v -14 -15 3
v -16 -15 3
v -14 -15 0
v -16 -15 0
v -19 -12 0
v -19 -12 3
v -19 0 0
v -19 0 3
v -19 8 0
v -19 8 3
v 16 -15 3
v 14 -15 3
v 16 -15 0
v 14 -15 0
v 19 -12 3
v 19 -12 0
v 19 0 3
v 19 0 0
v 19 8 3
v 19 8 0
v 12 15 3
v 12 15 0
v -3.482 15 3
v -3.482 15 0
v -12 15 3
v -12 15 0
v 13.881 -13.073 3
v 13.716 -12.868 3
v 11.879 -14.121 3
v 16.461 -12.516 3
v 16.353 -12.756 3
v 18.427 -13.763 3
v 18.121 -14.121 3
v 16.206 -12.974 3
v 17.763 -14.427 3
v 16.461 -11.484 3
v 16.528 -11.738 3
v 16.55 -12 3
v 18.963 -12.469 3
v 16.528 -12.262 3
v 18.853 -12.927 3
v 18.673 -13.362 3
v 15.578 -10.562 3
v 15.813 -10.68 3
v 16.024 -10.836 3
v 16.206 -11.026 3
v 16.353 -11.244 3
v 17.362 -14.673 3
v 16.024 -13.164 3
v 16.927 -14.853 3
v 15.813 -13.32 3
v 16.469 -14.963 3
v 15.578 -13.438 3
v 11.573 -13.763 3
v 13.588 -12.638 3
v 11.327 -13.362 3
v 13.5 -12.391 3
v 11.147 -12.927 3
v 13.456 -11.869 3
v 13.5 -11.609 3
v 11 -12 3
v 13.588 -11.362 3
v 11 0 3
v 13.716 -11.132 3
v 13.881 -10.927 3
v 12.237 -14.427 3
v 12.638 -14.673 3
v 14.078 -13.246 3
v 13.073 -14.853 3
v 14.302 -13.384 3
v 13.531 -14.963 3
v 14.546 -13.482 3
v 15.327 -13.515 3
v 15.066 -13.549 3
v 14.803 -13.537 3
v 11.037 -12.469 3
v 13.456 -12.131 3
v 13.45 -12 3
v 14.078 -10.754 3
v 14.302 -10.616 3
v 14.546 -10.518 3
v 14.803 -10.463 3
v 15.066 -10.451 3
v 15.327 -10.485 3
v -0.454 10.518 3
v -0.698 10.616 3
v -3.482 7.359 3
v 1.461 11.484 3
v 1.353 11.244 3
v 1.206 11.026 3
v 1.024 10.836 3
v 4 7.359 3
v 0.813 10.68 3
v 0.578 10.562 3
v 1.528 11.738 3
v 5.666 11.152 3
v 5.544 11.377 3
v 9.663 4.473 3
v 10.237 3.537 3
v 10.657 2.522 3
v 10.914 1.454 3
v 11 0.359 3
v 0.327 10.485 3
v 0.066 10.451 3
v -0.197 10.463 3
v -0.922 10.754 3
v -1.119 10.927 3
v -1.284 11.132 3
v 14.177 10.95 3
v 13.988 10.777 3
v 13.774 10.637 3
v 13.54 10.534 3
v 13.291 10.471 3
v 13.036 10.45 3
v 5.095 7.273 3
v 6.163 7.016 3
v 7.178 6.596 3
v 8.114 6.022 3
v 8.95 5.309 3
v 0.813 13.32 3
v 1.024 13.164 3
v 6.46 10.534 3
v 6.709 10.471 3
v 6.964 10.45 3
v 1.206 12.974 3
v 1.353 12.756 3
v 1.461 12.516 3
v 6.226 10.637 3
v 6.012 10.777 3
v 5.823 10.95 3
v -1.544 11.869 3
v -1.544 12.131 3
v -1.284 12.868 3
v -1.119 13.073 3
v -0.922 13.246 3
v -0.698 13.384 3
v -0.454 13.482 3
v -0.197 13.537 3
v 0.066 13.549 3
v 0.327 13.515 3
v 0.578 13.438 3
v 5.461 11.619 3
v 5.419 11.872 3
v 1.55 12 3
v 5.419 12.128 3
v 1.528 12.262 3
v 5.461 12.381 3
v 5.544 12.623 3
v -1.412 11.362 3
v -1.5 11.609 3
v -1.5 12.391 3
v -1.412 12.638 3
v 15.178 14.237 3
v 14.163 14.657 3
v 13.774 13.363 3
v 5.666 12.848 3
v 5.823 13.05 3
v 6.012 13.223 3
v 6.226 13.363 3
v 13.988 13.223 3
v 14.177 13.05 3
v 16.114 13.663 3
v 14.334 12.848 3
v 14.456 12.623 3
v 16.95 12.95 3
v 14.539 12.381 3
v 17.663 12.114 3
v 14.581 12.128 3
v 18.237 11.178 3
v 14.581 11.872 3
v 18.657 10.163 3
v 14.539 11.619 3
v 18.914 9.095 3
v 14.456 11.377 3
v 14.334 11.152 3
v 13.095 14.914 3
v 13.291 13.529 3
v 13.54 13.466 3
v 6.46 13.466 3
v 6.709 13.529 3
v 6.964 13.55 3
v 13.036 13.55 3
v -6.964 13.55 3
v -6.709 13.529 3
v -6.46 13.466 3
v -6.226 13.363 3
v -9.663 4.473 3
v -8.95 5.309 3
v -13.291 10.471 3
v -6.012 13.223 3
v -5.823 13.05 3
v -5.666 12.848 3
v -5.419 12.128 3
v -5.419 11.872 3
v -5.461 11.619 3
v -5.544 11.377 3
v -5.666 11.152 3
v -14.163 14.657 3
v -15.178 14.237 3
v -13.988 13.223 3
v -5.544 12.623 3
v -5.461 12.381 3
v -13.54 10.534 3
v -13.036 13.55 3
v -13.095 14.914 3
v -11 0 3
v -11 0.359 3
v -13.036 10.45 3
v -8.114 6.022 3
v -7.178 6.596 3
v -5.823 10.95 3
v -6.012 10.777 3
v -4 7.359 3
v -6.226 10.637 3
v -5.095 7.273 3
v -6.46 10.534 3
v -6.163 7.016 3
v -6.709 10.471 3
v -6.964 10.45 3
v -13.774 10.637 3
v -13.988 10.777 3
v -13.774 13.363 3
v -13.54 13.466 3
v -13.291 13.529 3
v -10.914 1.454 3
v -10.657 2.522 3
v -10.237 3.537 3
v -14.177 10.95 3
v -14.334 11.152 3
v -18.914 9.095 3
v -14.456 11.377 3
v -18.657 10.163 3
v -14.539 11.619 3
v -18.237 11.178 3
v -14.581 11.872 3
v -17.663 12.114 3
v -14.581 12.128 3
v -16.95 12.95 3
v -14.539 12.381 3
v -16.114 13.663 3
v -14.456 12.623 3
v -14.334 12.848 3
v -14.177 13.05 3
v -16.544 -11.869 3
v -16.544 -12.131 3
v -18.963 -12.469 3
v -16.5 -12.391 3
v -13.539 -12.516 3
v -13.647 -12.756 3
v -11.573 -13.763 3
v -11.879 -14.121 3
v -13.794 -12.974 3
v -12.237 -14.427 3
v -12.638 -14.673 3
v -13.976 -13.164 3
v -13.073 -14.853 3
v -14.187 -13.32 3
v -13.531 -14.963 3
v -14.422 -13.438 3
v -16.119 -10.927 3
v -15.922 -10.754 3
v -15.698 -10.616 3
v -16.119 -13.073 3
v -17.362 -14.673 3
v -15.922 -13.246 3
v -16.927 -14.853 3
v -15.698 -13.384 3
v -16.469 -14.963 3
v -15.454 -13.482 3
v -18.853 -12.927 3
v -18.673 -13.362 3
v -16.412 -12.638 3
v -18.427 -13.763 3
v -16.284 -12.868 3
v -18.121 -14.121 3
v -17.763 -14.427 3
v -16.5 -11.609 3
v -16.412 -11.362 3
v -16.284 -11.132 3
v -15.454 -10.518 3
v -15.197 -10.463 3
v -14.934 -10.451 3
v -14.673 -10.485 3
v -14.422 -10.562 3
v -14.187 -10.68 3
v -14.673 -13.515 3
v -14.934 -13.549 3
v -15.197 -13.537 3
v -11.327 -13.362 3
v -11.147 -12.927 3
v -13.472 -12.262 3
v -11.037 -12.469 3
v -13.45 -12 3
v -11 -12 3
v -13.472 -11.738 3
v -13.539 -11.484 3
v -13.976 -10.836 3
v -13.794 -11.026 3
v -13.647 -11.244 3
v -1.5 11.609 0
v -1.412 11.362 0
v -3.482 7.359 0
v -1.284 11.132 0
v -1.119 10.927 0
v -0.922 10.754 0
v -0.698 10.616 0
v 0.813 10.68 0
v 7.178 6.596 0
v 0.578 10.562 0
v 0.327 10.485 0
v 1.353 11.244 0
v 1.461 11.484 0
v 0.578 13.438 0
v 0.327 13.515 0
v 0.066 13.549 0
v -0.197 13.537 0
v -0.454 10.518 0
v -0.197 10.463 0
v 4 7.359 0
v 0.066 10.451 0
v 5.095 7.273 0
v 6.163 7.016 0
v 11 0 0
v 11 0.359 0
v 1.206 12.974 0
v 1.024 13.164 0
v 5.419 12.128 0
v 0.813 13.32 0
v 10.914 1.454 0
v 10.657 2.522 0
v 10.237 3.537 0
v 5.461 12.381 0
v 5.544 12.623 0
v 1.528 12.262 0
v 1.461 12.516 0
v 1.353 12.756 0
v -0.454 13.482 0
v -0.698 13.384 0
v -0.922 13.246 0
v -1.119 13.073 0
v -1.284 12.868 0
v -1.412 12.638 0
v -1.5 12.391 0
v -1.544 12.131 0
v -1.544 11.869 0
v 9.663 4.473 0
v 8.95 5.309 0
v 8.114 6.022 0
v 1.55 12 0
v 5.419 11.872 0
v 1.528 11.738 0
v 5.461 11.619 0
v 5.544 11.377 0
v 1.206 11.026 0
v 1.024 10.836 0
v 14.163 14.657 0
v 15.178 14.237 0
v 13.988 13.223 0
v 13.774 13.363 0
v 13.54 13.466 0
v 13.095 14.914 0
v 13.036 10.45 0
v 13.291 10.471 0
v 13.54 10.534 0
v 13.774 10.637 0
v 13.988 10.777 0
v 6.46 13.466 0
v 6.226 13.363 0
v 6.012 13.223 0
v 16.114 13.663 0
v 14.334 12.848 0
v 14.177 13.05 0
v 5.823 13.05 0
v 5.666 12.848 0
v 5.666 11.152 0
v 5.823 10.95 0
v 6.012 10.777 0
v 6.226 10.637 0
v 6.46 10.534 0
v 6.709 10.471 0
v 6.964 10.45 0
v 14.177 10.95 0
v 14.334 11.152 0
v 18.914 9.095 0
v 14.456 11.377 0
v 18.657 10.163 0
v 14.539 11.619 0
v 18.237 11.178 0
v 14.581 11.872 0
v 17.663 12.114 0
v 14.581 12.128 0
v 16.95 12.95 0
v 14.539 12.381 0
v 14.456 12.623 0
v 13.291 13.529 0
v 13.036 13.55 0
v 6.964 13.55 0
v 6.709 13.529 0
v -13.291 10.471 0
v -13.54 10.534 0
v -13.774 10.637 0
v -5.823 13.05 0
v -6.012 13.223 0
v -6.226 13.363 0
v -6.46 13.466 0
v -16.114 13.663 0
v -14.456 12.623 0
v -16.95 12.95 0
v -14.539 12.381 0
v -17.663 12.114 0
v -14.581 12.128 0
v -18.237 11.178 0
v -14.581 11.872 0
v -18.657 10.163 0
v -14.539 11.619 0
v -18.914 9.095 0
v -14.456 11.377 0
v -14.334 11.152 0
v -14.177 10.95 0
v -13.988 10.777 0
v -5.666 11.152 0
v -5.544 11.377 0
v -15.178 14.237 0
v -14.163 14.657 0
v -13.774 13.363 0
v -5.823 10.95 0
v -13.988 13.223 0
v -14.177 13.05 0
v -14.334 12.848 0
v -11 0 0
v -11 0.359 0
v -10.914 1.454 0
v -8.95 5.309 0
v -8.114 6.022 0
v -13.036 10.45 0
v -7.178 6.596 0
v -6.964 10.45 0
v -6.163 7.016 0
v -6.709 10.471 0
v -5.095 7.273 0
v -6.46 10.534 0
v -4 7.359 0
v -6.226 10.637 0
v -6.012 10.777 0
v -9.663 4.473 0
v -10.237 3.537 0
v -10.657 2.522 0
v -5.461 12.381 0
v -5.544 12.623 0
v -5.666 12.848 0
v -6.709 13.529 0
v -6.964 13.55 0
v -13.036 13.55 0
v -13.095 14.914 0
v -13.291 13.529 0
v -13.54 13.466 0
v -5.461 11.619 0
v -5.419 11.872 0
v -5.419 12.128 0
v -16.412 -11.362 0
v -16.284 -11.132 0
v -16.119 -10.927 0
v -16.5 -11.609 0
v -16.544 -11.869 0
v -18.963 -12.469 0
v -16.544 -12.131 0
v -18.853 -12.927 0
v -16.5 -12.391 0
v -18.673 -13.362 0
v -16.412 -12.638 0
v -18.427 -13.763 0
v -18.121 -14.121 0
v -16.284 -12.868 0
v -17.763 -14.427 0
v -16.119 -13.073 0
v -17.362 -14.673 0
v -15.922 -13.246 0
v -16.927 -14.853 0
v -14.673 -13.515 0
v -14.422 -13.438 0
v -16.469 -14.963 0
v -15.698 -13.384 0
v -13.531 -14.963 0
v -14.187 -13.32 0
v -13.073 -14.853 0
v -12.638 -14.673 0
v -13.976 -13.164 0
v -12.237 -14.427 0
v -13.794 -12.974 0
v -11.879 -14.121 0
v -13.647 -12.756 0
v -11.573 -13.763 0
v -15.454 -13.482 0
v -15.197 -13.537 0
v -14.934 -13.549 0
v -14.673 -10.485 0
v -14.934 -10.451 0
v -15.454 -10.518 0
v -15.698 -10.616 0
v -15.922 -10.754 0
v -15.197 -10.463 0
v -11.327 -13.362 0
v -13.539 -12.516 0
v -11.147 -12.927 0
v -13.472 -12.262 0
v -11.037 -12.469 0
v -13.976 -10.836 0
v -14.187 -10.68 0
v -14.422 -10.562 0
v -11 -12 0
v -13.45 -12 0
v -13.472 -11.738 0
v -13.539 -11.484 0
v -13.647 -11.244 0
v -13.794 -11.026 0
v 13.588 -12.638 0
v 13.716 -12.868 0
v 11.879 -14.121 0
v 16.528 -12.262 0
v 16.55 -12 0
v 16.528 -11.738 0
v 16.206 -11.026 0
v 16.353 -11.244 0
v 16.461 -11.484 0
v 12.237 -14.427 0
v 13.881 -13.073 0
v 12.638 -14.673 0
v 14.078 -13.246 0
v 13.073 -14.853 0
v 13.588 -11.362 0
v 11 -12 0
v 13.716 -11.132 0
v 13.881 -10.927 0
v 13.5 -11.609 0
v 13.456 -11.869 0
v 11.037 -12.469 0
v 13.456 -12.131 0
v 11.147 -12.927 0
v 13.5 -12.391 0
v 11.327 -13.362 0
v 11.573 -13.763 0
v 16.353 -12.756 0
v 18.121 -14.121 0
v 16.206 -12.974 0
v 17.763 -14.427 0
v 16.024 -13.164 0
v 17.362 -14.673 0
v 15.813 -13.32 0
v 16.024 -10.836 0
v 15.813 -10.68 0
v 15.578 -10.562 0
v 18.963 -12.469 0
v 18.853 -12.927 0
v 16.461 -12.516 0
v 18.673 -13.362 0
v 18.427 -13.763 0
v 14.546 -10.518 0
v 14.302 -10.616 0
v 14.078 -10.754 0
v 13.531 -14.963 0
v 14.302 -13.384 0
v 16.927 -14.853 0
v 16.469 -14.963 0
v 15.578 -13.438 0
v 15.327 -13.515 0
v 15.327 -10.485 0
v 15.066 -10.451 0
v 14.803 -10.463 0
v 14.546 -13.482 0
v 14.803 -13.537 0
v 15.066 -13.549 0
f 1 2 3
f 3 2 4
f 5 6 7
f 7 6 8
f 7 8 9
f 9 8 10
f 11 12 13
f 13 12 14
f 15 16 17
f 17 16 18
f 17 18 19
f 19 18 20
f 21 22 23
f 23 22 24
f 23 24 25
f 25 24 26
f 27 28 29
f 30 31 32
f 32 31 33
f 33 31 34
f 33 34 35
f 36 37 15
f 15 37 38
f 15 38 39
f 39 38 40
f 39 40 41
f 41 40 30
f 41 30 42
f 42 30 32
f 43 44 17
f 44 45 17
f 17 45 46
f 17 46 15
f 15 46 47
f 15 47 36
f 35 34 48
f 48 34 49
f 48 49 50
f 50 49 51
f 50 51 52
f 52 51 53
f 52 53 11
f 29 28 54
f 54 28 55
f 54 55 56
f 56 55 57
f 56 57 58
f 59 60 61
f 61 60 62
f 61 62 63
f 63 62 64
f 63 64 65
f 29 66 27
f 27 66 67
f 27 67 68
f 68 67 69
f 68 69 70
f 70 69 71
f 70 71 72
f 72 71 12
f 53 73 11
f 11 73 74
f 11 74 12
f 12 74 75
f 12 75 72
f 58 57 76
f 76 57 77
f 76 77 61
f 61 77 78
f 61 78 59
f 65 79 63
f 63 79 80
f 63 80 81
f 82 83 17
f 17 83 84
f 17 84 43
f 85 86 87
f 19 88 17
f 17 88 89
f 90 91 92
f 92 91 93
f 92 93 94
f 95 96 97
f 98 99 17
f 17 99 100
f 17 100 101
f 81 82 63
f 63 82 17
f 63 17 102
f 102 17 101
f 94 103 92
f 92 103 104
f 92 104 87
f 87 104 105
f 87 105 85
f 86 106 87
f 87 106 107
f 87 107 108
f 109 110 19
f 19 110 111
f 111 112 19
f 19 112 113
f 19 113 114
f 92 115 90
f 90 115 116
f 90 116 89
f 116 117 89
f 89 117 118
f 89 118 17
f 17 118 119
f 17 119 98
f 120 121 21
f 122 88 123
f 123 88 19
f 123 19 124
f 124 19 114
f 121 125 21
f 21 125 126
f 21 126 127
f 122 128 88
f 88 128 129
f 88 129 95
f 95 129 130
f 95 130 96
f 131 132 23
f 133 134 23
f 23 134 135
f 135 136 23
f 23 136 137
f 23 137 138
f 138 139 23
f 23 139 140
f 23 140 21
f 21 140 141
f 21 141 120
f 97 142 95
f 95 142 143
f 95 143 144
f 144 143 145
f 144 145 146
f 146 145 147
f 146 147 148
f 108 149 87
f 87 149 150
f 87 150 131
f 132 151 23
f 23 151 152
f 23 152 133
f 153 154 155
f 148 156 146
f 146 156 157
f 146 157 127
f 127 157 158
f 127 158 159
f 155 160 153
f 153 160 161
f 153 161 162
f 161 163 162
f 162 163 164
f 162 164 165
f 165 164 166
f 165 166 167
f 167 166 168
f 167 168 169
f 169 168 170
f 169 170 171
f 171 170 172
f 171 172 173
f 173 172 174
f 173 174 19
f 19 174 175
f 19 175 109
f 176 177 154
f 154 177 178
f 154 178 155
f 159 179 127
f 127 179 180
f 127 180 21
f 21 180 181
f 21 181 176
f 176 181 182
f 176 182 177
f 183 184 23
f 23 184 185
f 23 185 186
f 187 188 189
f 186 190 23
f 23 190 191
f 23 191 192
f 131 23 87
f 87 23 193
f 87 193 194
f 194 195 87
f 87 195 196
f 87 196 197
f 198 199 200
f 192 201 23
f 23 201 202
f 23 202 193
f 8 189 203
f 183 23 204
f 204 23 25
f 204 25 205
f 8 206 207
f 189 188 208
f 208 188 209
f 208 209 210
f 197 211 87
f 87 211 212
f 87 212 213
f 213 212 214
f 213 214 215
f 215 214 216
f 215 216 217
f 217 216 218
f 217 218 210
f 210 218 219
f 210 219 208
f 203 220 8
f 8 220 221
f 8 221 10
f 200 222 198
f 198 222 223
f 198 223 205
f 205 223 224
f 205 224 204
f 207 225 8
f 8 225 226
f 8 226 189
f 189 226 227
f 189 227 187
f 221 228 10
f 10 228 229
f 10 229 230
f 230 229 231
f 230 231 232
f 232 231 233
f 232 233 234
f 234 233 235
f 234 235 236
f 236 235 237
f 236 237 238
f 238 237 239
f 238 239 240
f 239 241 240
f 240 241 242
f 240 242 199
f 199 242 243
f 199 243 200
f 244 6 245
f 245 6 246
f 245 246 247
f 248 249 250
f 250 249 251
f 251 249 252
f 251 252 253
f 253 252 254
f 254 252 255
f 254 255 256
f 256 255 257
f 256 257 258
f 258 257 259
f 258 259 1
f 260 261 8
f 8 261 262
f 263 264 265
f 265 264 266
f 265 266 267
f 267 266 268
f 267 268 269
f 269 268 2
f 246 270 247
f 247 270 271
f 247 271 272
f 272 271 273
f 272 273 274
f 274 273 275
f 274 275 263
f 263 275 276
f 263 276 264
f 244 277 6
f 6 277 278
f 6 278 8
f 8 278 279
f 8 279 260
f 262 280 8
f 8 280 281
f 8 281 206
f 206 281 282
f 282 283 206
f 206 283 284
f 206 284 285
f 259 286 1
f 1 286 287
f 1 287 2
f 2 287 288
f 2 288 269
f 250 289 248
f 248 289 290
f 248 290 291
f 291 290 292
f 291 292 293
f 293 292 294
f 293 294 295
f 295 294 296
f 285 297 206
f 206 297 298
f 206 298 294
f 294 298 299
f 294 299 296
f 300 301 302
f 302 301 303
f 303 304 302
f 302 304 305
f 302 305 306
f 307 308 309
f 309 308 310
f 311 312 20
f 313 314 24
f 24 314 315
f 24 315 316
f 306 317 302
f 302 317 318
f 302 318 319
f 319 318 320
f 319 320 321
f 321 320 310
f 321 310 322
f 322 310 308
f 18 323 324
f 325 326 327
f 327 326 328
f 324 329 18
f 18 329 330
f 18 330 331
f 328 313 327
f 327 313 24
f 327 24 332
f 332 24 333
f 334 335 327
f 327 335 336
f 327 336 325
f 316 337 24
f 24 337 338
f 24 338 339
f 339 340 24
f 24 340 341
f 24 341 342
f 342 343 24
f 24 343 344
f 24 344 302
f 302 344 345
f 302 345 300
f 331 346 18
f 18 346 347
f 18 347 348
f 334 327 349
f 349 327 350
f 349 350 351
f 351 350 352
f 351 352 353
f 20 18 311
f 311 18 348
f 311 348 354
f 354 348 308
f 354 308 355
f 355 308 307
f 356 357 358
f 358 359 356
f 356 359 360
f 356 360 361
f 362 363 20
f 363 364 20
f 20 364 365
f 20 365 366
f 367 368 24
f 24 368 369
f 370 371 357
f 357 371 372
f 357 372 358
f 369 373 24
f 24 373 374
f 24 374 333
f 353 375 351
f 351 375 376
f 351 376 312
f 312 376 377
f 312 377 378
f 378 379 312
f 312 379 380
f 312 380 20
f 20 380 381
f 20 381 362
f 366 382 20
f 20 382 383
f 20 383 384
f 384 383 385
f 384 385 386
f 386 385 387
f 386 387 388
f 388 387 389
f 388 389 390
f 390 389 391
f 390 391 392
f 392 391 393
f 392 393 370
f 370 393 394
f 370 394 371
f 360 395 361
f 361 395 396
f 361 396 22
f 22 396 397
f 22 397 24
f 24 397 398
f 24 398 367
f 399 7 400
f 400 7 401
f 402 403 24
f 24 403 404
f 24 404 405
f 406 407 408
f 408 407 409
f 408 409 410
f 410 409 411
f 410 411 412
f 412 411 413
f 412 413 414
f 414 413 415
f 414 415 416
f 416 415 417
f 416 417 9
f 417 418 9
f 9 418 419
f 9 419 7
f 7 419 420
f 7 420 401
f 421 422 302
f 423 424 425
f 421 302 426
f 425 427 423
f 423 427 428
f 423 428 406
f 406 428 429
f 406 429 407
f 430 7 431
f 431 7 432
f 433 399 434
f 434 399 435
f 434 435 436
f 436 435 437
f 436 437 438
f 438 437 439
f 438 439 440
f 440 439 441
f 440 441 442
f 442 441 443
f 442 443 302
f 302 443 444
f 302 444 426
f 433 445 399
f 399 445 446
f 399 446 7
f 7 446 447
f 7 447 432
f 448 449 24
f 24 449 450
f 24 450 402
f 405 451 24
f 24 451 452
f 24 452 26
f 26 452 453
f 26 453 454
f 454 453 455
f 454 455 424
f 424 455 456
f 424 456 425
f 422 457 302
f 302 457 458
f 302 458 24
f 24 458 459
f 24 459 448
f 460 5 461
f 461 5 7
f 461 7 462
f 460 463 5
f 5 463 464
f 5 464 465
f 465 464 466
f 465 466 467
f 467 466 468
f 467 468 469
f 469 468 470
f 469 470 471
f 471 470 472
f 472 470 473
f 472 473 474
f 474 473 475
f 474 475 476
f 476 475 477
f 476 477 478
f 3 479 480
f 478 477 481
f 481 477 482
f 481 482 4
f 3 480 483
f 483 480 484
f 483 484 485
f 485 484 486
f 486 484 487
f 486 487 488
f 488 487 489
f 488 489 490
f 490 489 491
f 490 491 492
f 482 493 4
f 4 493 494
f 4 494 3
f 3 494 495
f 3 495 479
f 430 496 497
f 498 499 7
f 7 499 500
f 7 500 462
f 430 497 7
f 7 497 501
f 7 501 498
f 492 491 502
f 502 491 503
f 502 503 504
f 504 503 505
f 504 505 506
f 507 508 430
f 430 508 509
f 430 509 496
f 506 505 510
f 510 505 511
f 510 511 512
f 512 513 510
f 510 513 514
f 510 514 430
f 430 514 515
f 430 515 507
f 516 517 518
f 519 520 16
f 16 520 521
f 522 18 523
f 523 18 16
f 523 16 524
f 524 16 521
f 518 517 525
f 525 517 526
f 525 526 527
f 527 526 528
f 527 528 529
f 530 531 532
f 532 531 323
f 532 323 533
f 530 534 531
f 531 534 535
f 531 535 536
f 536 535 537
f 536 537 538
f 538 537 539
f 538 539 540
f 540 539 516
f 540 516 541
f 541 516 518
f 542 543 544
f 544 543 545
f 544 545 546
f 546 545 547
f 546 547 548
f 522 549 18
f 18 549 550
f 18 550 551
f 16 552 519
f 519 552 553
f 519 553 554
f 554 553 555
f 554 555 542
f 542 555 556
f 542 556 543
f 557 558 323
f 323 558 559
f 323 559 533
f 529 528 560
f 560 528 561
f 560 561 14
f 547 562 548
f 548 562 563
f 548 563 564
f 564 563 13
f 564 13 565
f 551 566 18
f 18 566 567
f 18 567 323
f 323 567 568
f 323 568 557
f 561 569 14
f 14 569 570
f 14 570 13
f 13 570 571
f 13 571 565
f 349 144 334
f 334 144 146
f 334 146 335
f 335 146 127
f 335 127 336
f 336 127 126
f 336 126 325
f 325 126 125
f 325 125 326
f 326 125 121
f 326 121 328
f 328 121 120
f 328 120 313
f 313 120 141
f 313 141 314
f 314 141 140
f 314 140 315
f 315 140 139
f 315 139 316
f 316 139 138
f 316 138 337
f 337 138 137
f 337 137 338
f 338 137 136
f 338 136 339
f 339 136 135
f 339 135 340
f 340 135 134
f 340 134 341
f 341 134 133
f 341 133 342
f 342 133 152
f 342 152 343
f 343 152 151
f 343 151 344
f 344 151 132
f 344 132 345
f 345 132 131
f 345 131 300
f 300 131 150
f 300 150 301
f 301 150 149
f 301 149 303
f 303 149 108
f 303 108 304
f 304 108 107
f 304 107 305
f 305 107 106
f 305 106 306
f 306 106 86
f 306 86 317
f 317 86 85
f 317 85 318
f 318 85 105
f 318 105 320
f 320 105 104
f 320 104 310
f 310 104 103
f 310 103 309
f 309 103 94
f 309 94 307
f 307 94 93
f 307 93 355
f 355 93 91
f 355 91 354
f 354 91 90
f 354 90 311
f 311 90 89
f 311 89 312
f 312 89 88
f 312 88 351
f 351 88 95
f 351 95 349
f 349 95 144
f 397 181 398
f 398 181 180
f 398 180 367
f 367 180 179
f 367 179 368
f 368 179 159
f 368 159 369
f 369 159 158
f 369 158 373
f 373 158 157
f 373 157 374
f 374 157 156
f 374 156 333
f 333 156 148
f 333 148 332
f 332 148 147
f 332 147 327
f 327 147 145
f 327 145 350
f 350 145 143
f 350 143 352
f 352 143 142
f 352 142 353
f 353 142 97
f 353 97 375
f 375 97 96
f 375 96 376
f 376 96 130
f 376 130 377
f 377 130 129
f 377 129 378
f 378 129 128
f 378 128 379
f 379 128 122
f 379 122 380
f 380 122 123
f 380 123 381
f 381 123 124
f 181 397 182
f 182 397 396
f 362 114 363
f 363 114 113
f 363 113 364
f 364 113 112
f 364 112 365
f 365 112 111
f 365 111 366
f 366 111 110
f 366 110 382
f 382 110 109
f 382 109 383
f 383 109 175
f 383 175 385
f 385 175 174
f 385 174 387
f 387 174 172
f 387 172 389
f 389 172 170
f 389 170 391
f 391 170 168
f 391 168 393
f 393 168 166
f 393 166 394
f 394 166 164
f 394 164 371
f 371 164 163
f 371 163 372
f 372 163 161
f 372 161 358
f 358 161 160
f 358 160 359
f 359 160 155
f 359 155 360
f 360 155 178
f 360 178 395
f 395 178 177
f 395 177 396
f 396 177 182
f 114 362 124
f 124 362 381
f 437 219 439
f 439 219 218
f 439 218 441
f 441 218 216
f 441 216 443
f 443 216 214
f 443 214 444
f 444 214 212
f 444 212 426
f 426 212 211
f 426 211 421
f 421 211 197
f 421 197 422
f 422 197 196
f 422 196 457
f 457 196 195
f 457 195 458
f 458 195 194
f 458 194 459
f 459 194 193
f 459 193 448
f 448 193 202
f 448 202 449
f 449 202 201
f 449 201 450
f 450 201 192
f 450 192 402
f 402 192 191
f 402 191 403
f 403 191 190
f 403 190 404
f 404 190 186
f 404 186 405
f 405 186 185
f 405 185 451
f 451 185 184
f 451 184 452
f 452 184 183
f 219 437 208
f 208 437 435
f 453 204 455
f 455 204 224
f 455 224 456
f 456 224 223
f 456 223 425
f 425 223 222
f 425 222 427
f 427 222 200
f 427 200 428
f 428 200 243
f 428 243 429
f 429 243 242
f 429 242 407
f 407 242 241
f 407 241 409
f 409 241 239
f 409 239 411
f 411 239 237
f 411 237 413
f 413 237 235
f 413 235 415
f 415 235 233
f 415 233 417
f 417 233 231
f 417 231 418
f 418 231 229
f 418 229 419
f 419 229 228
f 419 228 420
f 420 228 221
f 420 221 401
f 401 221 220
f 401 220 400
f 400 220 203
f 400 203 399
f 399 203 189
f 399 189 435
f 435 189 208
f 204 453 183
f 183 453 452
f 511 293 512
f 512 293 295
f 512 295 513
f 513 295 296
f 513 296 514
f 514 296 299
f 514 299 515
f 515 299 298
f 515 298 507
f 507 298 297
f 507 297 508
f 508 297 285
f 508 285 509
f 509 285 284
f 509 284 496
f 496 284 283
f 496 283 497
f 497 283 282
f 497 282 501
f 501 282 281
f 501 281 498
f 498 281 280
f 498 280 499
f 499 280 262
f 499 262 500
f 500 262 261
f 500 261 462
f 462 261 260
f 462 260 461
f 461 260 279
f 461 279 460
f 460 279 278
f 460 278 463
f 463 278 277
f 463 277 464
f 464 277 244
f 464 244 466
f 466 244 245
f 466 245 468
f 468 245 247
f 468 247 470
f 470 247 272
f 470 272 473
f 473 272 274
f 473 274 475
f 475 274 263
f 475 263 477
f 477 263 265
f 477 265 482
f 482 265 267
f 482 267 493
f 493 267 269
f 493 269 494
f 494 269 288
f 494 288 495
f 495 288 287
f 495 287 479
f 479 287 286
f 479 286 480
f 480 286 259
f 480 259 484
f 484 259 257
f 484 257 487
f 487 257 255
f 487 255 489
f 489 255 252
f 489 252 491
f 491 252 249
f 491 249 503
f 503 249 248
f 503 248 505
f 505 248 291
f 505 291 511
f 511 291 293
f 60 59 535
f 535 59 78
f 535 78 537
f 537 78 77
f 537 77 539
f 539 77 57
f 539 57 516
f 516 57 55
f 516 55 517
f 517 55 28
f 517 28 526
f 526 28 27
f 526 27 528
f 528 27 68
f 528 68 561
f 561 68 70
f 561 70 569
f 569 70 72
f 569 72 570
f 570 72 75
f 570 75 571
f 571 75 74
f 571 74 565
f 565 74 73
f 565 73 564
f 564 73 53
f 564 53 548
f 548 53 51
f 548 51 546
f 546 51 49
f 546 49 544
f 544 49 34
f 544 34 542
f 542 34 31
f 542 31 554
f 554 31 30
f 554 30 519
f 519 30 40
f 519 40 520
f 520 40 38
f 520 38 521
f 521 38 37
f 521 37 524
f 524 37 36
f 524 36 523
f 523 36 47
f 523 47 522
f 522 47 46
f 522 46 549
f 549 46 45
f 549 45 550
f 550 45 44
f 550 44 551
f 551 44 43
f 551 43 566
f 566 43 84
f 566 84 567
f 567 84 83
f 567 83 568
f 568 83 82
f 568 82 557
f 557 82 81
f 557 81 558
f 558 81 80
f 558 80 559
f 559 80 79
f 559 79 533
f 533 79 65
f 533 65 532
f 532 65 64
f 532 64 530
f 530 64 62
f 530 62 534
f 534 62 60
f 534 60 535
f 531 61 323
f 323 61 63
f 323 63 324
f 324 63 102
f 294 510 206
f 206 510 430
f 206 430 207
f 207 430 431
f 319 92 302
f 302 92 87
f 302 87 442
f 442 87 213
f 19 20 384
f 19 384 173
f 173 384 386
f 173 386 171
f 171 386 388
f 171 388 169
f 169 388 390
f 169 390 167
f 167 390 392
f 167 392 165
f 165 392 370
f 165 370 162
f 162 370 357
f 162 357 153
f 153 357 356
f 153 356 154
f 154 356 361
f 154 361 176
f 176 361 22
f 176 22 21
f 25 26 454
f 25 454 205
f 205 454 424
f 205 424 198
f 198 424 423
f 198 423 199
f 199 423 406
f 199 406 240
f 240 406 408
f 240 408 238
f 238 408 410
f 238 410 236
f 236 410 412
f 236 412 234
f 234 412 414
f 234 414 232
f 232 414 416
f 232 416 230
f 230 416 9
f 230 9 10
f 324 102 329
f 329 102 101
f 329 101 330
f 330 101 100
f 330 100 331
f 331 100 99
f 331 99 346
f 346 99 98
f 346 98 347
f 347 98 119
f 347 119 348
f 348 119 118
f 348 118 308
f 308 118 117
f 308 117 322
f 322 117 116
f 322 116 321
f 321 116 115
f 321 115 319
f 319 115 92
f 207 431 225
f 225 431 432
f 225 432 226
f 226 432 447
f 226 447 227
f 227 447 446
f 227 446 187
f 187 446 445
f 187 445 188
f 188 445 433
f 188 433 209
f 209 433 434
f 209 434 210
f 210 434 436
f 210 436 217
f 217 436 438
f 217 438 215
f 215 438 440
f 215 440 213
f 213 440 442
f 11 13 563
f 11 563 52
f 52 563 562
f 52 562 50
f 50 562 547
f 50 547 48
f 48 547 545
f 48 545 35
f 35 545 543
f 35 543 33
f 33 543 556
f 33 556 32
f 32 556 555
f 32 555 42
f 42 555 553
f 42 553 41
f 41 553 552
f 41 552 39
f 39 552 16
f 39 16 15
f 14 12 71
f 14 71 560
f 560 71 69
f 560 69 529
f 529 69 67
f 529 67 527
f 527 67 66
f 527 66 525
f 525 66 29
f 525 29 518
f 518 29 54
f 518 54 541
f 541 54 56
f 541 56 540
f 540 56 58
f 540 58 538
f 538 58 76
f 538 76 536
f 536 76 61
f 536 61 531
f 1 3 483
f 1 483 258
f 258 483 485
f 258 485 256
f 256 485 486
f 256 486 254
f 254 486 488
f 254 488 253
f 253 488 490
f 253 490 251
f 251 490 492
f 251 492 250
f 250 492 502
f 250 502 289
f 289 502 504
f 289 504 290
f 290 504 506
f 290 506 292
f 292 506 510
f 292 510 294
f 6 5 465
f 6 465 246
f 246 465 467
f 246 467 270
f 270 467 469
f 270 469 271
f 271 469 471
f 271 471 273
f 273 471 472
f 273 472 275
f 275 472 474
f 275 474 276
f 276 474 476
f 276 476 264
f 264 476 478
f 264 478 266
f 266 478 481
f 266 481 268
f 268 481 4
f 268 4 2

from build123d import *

# Parameters (mm, degrees)
SKETCH_1_W          = 38
SKETCH_1_H          = 30
EXTRUDE_1_DEPTH     = 3
SKETCH_2_R          = 1.55
CUT_EXTRUDE_1_DEPTH = 10
SKETCH_3_W          = 22
SKETCH_3_H          = 22.358896132
CUT_EXTRUDE_2_DEPTH = 10
FILLET_1_R          = 7
FILLET_2_R          = 7
FILLET_3_R          = 3


with BuildPart() as part:
    # 草图1 → 凸台-拉伸1 (new body)
    with BuildSketch(Plane.XY):
        Rectangle(SKETCH_1_W, SKETCH_1_H)
    extrude(amount=EXTRUDE_1_DEPTH)

    # 草图2 → 切除-拉伸1 (cut)
    with BuildSketch(Plane.XY.offset(3)):
        with Locations((0, 12)):
            Circle(SKETCH_2_R)
        with Locations((-15, -12)):
            Circle(SKETCH_2_R)
        with Locations((15, -12)):
            Circle(SKETCH_2_R)
        with BuildLine():
            Line((6.963744532, 13.55), (13.036255468, 13.55))
            ThreePointArc((13.036255468, 13.55), (14.586255468, 12), (13.036255468, 10.45))
            Line((13.036255468, 10.45), (6.963744532, 10.45))
            ThreePointArc((6.963744532, 10.45), (5.413744532, 12), (6.963744532, 13.55))
        make_face()
        with BuildLine():
            Line((-6.963744532, 13.55), (-13.036255468, 13.55))
            ThreePointArc((-13.036255468, 13.55), (-14.586255468, 12), (-13.036255468, 10.45))
            Line((-13.036255468, 10.45), (-6.963744532, 10.45))
            ThreePointArc((-6.963744532, 10.45), (-5.413744532, 12), (-6.963744532, 13.55))
        make_face()
    extrude(amount=-CUT_EXTRUDE_1_DEPTH, mode=Mode.SUBTRACT)

    # 草图3 → 切除-拉伸2 (cut)
    with BuildSketch(Plane.XY.offset(3)):
        with Locations((0, -3.820551934)):
            Rectangle(SKETCH_3_W, SKETCH_3_H)
    extrude(amount=-CUT_EXTRUDE_2_DEPTH, mode=Mode.SUBTRACT)

    # 圆角1
    fillet_1_edges = [part.edges().sort_by_distance(p)[0] for p in [
        (-19, 15, 1.5),
        (19, 15, 1.5),
    ]]
    fillet(fillet_1_edges, radius=FILLET_1_R)

    # 圆角2
    fillet_2_edges = [part.edges().sort_by_distance(p)[0] for p in [
        (11, 7.358896132, 1.5),
        (-11, 7.358896132, 1.5),
    ]]
    fillet(fillet_2_edges, radius=FILLET_2_R)

    # 圆角3
    fillet_3_edges = [part.edges().sort_by_distance(p)[0] for p in [
        (11, -15, 1.5),
        (-11, -15, 1.5),
        (19, -15, 1.5),
        (-19, -15, 1.5),
    ]]
    fillet(fillet_3_edges, radius=FILLET_3_R)


solid = part.part
